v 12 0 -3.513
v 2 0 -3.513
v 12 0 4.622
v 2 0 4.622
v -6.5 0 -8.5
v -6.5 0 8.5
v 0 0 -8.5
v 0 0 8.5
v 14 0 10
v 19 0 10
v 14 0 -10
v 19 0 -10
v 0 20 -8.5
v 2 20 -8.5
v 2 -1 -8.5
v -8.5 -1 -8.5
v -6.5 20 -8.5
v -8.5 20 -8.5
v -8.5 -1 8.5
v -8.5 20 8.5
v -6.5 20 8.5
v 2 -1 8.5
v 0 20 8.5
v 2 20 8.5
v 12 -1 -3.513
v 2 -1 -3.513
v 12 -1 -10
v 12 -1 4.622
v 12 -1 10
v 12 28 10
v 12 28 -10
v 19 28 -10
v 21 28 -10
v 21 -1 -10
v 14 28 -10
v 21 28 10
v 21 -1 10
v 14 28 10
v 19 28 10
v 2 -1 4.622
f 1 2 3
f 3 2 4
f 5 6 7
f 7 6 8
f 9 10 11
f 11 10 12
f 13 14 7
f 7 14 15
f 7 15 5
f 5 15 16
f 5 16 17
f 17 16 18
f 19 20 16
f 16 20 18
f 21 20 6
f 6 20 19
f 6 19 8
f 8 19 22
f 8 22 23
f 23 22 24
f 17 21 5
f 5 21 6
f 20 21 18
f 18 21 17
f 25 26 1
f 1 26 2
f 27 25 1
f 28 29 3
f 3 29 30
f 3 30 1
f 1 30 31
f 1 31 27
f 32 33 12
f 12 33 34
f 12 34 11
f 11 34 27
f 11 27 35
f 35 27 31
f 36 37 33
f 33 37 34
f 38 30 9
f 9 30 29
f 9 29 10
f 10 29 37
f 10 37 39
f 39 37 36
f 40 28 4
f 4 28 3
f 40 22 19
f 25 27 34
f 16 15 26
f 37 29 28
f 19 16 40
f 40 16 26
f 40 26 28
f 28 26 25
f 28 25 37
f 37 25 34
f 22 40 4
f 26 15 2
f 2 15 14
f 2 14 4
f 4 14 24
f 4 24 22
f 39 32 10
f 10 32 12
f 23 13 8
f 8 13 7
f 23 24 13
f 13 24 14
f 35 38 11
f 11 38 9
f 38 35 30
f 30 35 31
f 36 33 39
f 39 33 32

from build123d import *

# Parameters (mm, degrees)
SKETCH1_W           = 2
SKETCH1_H           = 8.5
SKETCH1_H_2         = 20
SKETCH1_H_3         = 17
BOSS_EXTRUDE1_DEPTH = 20
BOSS_EXTRUDE2_DEPTH = 1
SKETCH3_W           = 2
SKETCH3_H           = 20
BOSS_EXTRUDE3_DEPTH = 8


with BuildPart() as part:
    # Sketch1 → Boss-Extrude1 (new body)
    with BuildSketch(Plane(origin=(0, 0, 0), x_dir=(1, 0, 0), z_dir=(0, 1, 0))):
        with Locations((-7.5, 4.25)):
            Rectangle(SKETCH1_W, SKETCH1_H)
        with Locations((-7.5, -4.25)):
            Rectangle(SKETCH1_W, SKETCH1_H)
        with Locations((20, 0)):
            Rectangle(SKETCH1_W, SKETCH1_H_2)
        with Locations((1, 0)):
            Rectangle(SKETCH1_W, SKETCH1_H_3)
        Polygon((14, 10), (14, -10), (12, -10), (12, 0), (12, 10), align=None)
    extrude(amount=BOSS_EXTRUDE1_DEPTH)

    # Sketch2 → Boss-Extrude2 (add)
    with BuildSketch(Plane.XZ):
        Polygon((21, -10), (21, 10), (12, 10), (12, 4.622142766), (2, 4.622142766), (2, 8.5), (-8.5, 8.5), (-8.5, -8.5), (2, -8.5), (2, -3.512828502), (12, -3.512828502), (12, -10), align=None)
    extrude(amount=BOSS_EXTRUDE2_DEPTH)

    # Sketch3 → Boss-Extrude3 (add)
    with BuildSketch(Plane(origin=(0, 20, 0), x_dir=(1, 0, 0), z_dir=(0, 1, 0))):
        with Locations((13, 0)):
            Rectangle(SKETCH3_W, SKETCH3_H)
        with Locations((20, 0)):
            Rectangle(SKETCH3_W, SKETCH3_H)
    extrude(amount=BOSS_EXTRUDE3_DEPTH)


solid = part.part
